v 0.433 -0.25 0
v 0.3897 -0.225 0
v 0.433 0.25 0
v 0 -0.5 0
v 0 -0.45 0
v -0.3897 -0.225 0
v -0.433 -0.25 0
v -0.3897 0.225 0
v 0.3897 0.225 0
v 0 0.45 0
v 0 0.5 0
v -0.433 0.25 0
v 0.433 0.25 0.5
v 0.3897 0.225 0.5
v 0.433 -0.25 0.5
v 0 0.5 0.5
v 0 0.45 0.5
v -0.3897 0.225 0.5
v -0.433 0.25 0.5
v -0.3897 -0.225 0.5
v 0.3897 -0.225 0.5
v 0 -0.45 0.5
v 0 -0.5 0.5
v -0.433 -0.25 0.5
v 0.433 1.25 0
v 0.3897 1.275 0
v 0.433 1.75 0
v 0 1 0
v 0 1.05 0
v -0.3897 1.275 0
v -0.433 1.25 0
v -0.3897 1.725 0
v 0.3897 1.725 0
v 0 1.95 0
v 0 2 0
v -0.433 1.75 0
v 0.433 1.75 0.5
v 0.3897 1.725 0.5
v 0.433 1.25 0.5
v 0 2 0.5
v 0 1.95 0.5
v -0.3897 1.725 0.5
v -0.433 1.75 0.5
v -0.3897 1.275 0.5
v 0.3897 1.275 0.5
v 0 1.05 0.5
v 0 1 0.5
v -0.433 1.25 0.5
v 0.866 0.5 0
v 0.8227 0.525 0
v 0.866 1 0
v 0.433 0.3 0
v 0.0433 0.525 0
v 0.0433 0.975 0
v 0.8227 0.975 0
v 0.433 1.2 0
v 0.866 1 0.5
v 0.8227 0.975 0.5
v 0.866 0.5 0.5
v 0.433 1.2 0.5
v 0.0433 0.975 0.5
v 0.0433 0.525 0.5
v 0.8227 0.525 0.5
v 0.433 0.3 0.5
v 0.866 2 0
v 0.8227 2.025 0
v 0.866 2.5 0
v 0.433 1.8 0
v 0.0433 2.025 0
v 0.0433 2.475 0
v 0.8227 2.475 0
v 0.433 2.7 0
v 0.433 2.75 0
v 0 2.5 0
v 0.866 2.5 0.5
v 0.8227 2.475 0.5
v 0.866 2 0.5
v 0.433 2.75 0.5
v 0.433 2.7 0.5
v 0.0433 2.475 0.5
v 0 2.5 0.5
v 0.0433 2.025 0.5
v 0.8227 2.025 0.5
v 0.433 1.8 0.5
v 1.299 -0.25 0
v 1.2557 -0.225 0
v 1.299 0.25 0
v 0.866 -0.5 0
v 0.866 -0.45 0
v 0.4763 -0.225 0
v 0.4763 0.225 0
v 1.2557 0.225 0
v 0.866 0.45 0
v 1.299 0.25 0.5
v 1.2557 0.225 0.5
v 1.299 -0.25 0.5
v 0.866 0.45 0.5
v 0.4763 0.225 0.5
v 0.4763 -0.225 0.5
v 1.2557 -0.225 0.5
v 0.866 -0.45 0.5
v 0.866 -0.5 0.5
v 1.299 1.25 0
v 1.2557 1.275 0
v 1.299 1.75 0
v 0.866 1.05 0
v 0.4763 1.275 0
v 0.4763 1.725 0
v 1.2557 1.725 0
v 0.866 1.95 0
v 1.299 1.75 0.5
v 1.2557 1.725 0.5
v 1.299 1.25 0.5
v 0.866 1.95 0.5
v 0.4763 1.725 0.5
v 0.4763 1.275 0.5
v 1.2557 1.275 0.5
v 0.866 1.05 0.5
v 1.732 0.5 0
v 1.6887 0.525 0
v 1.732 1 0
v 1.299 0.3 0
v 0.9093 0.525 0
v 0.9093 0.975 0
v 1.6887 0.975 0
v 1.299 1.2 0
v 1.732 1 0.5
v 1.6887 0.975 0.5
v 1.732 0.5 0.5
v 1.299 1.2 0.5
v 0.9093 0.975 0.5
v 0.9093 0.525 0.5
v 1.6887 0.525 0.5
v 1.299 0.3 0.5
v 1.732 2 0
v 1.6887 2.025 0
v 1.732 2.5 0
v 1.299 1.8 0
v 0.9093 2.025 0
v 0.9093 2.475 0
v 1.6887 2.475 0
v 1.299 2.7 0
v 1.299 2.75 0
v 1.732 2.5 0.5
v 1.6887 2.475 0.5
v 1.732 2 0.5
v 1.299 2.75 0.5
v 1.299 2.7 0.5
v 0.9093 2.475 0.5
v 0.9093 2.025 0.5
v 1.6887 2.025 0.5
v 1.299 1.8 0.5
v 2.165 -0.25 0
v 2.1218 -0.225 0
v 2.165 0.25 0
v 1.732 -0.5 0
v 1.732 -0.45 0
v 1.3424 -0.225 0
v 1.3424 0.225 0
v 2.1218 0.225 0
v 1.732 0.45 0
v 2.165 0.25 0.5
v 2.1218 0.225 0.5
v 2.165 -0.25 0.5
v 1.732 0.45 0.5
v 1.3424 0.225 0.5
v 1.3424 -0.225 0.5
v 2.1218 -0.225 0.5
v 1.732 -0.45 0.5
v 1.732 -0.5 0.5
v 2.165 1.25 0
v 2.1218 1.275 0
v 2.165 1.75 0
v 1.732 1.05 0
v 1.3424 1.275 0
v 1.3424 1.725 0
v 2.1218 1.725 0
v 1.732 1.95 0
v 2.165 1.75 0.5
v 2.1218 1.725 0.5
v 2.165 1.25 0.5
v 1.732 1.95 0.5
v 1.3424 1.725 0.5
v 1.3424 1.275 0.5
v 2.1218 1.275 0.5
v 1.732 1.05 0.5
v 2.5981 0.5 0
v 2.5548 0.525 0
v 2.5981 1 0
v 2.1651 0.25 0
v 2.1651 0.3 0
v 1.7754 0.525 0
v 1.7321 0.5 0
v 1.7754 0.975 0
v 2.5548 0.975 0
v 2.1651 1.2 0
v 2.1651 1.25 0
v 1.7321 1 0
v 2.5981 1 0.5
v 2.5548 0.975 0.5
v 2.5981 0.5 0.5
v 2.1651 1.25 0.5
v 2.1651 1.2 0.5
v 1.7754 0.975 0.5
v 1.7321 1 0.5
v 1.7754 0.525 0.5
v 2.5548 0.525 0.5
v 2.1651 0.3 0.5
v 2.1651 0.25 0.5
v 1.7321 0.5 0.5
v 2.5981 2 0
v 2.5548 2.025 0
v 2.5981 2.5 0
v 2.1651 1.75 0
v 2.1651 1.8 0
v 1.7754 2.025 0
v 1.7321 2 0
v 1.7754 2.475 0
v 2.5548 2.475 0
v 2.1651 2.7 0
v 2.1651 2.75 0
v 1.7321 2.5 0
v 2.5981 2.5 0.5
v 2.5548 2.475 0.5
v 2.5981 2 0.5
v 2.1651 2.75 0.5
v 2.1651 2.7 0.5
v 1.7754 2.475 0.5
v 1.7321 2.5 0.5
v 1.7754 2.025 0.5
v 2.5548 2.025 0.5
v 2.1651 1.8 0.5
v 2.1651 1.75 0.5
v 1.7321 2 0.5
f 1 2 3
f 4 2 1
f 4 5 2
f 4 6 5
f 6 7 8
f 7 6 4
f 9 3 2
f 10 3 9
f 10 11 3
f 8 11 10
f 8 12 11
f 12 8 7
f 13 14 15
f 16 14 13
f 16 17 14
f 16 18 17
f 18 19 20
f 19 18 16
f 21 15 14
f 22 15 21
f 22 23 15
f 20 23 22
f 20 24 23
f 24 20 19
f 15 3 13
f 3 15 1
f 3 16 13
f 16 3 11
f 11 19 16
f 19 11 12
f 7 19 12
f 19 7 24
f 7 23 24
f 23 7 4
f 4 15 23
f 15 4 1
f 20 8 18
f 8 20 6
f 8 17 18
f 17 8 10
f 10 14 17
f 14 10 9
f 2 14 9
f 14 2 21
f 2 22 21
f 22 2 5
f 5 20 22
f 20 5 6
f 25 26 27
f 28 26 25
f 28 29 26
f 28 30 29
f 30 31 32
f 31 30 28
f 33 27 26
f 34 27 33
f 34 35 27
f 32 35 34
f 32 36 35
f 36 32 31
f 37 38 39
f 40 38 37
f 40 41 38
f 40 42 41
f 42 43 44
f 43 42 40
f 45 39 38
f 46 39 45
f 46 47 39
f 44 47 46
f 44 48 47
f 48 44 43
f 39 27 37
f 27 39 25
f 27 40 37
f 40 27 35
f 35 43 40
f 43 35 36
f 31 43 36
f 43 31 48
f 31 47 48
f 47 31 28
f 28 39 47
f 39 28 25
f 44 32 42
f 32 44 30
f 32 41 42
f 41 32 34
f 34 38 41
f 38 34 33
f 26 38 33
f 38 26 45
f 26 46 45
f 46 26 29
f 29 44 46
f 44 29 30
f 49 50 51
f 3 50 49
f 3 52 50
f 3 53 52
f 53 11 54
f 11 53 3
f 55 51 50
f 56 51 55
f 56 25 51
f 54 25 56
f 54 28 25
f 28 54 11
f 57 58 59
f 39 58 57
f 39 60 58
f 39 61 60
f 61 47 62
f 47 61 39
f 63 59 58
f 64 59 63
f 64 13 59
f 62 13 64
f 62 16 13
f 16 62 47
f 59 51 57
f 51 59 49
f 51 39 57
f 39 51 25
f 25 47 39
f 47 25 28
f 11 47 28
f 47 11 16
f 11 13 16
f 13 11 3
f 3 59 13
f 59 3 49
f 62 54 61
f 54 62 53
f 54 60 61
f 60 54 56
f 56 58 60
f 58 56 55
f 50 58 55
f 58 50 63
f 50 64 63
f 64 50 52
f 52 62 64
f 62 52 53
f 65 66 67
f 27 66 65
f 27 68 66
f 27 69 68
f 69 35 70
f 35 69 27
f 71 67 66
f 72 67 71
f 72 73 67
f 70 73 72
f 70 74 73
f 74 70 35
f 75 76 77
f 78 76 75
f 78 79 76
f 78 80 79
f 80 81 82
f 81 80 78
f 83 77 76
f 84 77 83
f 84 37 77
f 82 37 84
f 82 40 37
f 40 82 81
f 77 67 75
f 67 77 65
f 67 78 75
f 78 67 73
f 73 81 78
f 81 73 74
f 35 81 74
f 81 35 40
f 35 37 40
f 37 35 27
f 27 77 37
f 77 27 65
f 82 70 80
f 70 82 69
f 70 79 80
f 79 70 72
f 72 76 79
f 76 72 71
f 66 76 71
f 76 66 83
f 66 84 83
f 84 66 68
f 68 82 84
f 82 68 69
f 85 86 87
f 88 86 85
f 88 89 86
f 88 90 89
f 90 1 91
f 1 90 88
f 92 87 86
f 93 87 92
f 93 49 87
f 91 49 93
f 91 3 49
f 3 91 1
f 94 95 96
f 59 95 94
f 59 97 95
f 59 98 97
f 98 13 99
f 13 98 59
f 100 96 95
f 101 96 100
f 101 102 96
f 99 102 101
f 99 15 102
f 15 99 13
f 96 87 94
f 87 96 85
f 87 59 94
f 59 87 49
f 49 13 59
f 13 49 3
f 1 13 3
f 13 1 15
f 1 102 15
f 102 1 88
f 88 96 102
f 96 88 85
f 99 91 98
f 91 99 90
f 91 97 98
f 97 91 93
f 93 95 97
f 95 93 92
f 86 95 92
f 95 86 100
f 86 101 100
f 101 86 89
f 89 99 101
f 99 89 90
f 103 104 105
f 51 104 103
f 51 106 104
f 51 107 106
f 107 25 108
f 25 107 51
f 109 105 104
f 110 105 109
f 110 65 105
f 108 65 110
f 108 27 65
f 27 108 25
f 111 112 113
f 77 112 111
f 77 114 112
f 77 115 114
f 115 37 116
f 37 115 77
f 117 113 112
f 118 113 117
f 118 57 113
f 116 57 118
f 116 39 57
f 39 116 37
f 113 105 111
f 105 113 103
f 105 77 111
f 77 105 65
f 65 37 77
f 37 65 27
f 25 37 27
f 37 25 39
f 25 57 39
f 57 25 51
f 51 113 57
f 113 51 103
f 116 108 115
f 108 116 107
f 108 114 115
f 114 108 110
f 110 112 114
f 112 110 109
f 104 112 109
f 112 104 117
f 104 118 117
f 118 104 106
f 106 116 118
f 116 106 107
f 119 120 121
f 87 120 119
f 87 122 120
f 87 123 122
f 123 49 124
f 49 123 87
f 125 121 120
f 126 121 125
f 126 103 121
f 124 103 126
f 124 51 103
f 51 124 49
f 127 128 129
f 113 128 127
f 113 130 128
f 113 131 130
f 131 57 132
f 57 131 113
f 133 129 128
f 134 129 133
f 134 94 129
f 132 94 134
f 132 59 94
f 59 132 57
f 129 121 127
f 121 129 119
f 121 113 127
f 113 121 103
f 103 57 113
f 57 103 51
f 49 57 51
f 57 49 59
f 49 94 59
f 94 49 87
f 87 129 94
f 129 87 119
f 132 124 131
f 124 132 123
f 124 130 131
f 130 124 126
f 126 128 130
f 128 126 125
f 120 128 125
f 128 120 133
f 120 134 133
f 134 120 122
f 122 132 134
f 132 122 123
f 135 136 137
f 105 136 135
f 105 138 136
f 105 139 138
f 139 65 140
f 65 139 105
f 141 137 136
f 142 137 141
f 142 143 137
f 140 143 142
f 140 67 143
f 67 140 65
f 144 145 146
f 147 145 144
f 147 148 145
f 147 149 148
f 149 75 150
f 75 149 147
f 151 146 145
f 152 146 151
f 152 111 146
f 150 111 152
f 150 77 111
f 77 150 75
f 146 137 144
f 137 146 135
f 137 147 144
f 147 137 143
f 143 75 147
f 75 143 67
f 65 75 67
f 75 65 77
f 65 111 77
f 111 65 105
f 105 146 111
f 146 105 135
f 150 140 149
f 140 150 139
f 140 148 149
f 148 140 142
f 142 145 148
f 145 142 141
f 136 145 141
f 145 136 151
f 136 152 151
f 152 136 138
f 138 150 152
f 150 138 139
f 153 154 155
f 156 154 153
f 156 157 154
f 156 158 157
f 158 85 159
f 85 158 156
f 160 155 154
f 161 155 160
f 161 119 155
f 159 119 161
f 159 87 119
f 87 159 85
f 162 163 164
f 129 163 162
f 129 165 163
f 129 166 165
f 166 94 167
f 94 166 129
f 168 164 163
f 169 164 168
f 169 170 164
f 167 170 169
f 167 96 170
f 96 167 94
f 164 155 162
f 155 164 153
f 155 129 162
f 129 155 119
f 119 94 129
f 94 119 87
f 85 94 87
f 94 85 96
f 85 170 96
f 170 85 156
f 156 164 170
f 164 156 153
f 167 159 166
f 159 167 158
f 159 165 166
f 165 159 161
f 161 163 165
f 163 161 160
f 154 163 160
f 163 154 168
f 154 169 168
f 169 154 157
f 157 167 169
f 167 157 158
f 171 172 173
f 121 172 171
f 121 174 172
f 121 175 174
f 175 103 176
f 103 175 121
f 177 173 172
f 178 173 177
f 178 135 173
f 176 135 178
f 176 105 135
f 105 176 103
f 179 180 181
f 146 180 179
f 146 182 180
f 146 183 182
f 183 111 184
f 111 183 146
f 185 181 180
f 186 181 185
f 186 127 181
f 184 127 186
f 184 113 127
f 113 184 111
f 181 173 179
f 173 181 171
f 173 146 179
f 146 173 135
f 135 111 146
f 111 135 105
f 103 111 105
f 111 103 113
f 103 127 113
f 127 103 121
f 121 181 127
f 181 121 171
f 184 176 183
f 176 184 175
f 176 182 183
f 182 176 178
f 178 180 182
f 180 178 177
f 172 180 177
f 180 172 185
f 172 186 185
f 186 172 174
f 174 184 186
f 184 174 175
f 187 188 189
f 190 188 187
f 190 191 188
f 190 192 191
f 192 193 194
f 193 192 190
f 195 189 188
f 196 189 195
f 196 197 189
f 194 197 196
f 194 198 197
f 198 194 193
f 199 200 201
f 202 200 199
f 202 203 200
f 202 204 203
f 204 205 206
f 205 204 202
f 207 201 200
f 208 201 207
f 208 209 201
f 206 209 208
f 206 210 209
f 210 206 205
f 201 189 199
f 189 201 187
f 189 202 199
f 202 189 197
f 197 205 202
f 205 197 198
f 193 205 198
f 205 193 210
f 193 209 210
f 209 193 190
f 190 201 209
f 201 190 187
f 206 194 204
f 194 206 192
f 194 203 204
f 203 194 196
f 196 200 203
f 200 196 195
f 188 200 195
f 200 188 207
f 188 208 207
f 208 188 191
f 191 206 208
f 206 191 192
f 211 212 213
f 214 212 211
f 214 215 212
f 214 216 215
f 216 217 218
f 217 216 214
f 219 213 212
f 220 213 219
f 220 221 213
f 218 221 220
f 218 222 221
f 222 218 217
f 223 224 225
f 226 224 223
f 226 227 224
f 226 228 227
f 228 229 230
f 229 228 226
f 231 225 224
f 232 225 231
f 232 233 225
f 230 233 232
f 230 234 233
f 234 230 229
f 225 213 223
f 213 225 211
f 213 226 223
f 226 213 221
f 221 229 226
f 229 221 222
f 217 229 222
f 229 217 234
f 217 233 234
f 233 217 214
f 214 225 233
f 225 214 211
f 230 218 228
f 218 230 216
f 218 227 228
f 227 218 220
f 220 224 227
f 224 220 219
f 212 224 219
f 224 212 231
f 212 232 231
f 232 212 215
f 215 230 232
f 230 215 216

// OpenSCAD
module hex_cell( r, p, h ) {
    l_points = [for (ang=[0:5]) [r*cos(ang*60 + 30), r*sin(ang*60 + 30)]];

    linear_extrude( height=h ) {
        difference() {
            polygon( l_points );
            scale( [p, p, p] ) polygon( l_points );
        }
    }
}


module hex_row( r, p, h, n ) {
    union() {
        for (i=[0:n]) {
            translate( [0, i*r*3] ) hex_cell( r, p, h );
        }
    }
}

module hex_row_pair( r, p, h, n ) {
    union() {
        hex_row( r, p, h, n );
        translate( [sqrt(3)*r/2, 1.5*r] ) hex_row( r, p, h, n );
    }
}



r = 0.5;
p = 0.9;
h = 0.5;
m = 1;
n = 2;
union() {
    for (row=[0:n]) {
        translate( [2*row*sqrt(3)*r/2, 0] ) hex_row_pair(r, p, h, m);
    }
 }
